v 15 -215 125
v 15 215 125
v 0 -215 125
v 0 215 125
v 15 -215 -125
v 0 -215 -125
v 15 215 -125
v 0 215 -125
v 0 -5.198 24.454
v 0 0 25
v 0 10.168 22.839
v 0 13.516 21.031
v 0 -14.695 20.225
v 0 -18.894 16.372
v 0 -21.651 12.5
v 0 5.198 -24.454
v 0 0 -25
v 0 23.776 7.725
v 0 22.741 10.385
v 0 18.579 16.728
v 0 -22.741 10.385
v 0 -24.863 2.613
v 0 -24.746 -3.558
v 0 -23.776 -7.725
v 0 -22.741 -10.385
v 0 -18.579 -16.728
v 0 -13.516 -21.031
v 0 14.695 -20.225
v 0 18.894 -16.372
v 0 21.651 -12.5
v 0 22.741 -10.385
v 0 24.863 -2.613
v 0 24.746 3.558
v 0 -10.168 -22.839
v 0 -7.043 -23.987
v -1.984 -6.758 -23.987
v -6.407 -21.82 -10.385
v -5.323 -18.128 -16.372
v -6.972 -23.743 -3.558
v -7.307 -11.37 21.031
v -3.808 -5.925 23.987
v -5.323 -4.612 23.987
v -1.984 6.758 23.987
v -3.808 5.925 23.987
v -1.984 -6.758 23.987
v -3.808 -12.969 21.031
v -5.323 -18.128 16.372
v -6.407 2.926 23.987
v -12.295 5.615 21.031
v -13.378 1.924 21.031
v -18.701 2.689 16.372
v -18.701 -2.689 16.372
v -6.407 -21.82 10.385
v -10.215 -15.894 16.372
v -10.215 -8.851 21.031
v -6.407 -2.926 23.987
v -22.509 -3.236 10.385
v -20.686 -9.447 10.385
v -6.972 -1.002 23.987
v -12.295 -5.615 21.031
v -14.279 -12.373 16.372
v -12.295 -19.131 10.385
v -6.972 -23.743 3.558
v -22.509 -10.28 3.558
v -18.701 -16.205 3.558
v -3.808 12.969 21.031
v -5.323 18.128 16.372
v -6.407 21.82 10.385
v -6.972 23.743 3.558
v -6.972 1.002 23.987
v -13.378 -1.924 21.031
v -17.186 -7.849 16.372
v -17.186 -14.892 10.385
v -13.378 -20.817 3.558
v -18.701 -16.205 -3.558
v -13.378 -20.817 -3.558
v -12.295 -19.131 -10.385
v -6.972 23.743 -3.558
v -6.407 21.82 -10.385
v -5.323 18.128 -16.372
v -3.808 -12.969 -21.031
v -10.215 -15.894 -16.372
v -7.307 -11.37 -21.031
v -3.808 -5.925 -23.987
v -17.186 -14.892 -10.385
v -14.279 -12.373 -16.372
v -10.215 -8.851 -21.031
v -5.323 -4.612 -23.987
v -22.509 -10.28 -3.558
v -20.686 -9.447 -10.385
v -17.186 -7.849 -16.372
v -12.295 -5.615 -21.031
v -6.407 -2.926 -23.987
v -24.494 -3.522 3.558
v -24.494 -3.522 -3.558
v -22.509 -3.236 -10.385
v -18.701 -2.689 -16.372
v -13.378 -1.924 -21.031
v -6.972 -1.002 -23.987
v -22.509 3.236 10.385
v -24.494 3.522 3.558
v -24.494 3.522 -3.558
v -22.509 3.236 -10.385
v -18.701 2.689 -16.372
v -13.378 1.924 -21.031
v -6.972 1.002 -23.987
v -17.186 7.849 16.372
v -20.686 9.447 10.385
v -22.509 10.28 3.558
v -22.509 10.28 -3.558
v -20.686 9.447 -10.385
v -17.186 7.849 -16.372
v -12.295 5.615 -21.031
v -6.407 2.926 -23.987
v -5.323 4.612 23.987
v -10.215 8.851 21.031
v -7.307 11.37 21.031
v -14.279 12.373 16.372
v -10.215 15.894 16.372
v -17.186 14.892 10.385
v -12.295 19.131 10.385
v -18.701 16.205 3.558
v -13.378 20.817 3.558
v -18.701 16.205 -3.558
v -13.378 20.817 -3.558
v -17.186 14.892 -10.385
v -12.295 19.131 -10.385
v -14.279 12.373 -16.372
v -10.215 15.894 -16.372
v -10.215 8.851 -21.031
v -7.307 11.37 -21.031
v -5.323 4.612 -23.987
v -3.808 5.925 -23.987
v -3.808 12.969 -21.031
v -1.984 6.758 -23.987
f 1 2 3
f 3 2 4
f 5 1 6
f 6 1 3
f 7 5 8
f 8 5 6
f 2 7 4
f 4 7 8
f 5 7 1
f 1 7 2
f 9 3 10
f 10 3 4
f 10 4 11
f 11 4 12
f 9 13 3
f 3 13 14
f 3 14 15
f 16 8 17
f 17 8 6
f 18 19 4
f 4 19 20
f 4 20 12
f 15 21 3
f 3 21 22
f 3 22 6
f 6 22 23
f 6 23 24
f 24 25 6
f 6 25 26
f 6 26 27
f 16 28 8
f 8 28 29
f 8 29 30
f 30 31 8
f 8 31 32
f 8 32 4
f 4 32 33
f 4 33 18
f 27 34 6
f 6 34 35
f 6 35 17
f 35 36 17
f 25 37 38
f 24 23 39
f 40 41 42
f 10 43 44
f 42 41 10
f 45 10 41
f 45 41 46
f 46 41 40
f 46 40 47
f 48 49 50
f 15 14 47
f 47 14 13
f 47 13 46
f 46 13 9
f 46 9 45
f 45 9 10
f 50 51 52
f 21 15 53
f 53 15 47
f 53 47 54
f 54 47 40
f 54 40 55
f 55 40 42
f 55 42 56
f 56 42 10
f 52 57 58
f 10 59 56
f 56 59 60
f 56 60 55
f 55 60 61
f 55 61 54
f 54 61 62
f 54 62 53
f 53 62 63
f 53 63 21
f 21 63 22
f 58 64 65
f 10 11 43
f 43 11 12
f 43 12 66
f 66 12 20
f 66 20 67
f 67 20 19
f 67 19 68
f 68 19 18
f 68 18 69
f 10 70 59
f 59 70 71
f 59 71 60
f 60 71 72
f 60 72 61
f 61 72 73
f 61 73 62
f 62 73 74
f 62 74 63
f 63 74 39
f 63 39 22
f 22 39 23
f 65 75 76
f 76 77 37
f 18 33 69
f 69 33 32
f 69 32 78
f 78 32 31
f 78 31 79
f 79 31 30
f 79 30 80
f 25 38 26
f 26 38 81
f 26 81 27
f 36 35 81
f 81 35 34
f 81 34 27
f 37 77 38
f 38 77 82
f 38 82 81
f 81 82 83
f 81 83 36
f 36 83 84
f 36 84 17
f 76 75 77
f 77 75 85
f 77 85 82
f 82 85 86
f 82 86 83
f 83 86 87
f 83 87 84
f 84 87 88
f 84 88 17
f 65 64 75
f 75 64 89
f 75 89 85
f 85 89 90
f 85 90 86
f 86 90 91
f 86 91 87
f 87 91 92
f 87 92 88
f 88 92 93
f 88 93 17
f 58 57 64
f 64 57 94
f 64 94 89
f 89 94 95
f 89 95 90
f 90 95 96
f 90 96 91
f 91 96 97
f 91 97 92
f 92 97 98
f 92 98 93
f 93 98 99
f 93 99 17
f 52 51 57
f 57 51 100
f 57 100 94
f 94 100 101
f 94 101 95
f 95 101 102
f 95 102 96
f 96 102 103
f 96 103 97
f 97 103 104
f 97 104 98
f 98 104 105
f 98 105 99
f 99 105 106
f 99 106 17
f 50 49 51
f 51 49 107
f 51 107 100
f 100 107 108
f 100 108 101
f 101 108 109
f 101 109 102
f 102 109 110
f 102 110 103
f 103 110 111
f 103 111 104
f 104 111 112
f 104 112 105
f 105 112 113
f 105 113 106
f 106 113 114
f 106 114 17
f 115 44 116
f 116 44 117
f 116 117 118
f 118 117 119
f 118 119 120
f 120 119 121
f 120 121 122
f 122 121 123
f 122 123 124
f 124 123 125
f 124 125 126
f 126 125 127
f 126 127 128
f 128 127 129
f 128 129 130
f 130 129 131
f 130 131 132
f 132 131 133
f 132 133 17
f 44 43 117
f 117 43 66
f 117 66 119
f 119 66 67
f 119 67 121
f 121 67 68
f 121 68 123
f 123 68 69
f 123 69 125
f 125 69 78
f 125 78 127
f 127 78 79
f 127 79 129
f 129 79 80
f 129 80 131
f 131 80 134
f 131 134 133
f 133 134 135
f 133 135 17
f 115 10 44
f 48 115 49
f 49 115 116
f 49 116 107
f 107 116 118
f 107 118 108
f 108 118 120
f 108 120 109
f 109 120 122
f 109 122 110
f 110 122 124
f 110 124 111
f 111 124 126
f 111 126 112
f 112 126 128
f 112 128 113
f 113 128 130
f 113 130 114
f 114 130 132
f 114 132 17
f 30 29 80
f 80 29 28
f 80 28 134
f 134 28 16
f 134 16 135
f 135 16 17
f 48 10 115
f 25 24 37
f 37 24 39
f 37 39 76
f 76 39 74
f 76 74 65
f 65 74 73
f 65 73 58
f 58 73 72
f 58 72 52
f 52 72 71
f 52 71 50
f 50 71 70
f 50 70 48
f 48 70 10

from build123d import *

# Parameters (mm, degrees)
ESBO_O1_W                = 250
ESBO_O1_H                = 430
RESSALTO_EXTRUS_O1_DEPTH = 15
REVOLU_O1_ANGLE          = 180


with BuildPart() as part:
    # Esboço1 → Ressalto-extrusão1 (new body)
    with BuildSketch(Plane(origin=(0, 0, 0), x_dir=(0, 0, -1), z_dir=(1, 0, 0))):
        Rectangle(ESBO_O1_W, ESBO_O1_H)
    extrude(amount=RESSALTO_EXTRUS_O1_DEPTH)

    # Esboço4 → Revolução1 (revolve)
    with BuildSketch(Plane.ZY):
        with BuildLine():
            Line((-25, 0), (25, 0))
            ThreePointArc((25, 0), (0, -25), (-25, 0))
        make_face()
    revolve(axis=Axis((0, 0, -25), (0, 0, -1)), revolution_arc=REVOLU_O1_ANGLE)


solid = part.part
